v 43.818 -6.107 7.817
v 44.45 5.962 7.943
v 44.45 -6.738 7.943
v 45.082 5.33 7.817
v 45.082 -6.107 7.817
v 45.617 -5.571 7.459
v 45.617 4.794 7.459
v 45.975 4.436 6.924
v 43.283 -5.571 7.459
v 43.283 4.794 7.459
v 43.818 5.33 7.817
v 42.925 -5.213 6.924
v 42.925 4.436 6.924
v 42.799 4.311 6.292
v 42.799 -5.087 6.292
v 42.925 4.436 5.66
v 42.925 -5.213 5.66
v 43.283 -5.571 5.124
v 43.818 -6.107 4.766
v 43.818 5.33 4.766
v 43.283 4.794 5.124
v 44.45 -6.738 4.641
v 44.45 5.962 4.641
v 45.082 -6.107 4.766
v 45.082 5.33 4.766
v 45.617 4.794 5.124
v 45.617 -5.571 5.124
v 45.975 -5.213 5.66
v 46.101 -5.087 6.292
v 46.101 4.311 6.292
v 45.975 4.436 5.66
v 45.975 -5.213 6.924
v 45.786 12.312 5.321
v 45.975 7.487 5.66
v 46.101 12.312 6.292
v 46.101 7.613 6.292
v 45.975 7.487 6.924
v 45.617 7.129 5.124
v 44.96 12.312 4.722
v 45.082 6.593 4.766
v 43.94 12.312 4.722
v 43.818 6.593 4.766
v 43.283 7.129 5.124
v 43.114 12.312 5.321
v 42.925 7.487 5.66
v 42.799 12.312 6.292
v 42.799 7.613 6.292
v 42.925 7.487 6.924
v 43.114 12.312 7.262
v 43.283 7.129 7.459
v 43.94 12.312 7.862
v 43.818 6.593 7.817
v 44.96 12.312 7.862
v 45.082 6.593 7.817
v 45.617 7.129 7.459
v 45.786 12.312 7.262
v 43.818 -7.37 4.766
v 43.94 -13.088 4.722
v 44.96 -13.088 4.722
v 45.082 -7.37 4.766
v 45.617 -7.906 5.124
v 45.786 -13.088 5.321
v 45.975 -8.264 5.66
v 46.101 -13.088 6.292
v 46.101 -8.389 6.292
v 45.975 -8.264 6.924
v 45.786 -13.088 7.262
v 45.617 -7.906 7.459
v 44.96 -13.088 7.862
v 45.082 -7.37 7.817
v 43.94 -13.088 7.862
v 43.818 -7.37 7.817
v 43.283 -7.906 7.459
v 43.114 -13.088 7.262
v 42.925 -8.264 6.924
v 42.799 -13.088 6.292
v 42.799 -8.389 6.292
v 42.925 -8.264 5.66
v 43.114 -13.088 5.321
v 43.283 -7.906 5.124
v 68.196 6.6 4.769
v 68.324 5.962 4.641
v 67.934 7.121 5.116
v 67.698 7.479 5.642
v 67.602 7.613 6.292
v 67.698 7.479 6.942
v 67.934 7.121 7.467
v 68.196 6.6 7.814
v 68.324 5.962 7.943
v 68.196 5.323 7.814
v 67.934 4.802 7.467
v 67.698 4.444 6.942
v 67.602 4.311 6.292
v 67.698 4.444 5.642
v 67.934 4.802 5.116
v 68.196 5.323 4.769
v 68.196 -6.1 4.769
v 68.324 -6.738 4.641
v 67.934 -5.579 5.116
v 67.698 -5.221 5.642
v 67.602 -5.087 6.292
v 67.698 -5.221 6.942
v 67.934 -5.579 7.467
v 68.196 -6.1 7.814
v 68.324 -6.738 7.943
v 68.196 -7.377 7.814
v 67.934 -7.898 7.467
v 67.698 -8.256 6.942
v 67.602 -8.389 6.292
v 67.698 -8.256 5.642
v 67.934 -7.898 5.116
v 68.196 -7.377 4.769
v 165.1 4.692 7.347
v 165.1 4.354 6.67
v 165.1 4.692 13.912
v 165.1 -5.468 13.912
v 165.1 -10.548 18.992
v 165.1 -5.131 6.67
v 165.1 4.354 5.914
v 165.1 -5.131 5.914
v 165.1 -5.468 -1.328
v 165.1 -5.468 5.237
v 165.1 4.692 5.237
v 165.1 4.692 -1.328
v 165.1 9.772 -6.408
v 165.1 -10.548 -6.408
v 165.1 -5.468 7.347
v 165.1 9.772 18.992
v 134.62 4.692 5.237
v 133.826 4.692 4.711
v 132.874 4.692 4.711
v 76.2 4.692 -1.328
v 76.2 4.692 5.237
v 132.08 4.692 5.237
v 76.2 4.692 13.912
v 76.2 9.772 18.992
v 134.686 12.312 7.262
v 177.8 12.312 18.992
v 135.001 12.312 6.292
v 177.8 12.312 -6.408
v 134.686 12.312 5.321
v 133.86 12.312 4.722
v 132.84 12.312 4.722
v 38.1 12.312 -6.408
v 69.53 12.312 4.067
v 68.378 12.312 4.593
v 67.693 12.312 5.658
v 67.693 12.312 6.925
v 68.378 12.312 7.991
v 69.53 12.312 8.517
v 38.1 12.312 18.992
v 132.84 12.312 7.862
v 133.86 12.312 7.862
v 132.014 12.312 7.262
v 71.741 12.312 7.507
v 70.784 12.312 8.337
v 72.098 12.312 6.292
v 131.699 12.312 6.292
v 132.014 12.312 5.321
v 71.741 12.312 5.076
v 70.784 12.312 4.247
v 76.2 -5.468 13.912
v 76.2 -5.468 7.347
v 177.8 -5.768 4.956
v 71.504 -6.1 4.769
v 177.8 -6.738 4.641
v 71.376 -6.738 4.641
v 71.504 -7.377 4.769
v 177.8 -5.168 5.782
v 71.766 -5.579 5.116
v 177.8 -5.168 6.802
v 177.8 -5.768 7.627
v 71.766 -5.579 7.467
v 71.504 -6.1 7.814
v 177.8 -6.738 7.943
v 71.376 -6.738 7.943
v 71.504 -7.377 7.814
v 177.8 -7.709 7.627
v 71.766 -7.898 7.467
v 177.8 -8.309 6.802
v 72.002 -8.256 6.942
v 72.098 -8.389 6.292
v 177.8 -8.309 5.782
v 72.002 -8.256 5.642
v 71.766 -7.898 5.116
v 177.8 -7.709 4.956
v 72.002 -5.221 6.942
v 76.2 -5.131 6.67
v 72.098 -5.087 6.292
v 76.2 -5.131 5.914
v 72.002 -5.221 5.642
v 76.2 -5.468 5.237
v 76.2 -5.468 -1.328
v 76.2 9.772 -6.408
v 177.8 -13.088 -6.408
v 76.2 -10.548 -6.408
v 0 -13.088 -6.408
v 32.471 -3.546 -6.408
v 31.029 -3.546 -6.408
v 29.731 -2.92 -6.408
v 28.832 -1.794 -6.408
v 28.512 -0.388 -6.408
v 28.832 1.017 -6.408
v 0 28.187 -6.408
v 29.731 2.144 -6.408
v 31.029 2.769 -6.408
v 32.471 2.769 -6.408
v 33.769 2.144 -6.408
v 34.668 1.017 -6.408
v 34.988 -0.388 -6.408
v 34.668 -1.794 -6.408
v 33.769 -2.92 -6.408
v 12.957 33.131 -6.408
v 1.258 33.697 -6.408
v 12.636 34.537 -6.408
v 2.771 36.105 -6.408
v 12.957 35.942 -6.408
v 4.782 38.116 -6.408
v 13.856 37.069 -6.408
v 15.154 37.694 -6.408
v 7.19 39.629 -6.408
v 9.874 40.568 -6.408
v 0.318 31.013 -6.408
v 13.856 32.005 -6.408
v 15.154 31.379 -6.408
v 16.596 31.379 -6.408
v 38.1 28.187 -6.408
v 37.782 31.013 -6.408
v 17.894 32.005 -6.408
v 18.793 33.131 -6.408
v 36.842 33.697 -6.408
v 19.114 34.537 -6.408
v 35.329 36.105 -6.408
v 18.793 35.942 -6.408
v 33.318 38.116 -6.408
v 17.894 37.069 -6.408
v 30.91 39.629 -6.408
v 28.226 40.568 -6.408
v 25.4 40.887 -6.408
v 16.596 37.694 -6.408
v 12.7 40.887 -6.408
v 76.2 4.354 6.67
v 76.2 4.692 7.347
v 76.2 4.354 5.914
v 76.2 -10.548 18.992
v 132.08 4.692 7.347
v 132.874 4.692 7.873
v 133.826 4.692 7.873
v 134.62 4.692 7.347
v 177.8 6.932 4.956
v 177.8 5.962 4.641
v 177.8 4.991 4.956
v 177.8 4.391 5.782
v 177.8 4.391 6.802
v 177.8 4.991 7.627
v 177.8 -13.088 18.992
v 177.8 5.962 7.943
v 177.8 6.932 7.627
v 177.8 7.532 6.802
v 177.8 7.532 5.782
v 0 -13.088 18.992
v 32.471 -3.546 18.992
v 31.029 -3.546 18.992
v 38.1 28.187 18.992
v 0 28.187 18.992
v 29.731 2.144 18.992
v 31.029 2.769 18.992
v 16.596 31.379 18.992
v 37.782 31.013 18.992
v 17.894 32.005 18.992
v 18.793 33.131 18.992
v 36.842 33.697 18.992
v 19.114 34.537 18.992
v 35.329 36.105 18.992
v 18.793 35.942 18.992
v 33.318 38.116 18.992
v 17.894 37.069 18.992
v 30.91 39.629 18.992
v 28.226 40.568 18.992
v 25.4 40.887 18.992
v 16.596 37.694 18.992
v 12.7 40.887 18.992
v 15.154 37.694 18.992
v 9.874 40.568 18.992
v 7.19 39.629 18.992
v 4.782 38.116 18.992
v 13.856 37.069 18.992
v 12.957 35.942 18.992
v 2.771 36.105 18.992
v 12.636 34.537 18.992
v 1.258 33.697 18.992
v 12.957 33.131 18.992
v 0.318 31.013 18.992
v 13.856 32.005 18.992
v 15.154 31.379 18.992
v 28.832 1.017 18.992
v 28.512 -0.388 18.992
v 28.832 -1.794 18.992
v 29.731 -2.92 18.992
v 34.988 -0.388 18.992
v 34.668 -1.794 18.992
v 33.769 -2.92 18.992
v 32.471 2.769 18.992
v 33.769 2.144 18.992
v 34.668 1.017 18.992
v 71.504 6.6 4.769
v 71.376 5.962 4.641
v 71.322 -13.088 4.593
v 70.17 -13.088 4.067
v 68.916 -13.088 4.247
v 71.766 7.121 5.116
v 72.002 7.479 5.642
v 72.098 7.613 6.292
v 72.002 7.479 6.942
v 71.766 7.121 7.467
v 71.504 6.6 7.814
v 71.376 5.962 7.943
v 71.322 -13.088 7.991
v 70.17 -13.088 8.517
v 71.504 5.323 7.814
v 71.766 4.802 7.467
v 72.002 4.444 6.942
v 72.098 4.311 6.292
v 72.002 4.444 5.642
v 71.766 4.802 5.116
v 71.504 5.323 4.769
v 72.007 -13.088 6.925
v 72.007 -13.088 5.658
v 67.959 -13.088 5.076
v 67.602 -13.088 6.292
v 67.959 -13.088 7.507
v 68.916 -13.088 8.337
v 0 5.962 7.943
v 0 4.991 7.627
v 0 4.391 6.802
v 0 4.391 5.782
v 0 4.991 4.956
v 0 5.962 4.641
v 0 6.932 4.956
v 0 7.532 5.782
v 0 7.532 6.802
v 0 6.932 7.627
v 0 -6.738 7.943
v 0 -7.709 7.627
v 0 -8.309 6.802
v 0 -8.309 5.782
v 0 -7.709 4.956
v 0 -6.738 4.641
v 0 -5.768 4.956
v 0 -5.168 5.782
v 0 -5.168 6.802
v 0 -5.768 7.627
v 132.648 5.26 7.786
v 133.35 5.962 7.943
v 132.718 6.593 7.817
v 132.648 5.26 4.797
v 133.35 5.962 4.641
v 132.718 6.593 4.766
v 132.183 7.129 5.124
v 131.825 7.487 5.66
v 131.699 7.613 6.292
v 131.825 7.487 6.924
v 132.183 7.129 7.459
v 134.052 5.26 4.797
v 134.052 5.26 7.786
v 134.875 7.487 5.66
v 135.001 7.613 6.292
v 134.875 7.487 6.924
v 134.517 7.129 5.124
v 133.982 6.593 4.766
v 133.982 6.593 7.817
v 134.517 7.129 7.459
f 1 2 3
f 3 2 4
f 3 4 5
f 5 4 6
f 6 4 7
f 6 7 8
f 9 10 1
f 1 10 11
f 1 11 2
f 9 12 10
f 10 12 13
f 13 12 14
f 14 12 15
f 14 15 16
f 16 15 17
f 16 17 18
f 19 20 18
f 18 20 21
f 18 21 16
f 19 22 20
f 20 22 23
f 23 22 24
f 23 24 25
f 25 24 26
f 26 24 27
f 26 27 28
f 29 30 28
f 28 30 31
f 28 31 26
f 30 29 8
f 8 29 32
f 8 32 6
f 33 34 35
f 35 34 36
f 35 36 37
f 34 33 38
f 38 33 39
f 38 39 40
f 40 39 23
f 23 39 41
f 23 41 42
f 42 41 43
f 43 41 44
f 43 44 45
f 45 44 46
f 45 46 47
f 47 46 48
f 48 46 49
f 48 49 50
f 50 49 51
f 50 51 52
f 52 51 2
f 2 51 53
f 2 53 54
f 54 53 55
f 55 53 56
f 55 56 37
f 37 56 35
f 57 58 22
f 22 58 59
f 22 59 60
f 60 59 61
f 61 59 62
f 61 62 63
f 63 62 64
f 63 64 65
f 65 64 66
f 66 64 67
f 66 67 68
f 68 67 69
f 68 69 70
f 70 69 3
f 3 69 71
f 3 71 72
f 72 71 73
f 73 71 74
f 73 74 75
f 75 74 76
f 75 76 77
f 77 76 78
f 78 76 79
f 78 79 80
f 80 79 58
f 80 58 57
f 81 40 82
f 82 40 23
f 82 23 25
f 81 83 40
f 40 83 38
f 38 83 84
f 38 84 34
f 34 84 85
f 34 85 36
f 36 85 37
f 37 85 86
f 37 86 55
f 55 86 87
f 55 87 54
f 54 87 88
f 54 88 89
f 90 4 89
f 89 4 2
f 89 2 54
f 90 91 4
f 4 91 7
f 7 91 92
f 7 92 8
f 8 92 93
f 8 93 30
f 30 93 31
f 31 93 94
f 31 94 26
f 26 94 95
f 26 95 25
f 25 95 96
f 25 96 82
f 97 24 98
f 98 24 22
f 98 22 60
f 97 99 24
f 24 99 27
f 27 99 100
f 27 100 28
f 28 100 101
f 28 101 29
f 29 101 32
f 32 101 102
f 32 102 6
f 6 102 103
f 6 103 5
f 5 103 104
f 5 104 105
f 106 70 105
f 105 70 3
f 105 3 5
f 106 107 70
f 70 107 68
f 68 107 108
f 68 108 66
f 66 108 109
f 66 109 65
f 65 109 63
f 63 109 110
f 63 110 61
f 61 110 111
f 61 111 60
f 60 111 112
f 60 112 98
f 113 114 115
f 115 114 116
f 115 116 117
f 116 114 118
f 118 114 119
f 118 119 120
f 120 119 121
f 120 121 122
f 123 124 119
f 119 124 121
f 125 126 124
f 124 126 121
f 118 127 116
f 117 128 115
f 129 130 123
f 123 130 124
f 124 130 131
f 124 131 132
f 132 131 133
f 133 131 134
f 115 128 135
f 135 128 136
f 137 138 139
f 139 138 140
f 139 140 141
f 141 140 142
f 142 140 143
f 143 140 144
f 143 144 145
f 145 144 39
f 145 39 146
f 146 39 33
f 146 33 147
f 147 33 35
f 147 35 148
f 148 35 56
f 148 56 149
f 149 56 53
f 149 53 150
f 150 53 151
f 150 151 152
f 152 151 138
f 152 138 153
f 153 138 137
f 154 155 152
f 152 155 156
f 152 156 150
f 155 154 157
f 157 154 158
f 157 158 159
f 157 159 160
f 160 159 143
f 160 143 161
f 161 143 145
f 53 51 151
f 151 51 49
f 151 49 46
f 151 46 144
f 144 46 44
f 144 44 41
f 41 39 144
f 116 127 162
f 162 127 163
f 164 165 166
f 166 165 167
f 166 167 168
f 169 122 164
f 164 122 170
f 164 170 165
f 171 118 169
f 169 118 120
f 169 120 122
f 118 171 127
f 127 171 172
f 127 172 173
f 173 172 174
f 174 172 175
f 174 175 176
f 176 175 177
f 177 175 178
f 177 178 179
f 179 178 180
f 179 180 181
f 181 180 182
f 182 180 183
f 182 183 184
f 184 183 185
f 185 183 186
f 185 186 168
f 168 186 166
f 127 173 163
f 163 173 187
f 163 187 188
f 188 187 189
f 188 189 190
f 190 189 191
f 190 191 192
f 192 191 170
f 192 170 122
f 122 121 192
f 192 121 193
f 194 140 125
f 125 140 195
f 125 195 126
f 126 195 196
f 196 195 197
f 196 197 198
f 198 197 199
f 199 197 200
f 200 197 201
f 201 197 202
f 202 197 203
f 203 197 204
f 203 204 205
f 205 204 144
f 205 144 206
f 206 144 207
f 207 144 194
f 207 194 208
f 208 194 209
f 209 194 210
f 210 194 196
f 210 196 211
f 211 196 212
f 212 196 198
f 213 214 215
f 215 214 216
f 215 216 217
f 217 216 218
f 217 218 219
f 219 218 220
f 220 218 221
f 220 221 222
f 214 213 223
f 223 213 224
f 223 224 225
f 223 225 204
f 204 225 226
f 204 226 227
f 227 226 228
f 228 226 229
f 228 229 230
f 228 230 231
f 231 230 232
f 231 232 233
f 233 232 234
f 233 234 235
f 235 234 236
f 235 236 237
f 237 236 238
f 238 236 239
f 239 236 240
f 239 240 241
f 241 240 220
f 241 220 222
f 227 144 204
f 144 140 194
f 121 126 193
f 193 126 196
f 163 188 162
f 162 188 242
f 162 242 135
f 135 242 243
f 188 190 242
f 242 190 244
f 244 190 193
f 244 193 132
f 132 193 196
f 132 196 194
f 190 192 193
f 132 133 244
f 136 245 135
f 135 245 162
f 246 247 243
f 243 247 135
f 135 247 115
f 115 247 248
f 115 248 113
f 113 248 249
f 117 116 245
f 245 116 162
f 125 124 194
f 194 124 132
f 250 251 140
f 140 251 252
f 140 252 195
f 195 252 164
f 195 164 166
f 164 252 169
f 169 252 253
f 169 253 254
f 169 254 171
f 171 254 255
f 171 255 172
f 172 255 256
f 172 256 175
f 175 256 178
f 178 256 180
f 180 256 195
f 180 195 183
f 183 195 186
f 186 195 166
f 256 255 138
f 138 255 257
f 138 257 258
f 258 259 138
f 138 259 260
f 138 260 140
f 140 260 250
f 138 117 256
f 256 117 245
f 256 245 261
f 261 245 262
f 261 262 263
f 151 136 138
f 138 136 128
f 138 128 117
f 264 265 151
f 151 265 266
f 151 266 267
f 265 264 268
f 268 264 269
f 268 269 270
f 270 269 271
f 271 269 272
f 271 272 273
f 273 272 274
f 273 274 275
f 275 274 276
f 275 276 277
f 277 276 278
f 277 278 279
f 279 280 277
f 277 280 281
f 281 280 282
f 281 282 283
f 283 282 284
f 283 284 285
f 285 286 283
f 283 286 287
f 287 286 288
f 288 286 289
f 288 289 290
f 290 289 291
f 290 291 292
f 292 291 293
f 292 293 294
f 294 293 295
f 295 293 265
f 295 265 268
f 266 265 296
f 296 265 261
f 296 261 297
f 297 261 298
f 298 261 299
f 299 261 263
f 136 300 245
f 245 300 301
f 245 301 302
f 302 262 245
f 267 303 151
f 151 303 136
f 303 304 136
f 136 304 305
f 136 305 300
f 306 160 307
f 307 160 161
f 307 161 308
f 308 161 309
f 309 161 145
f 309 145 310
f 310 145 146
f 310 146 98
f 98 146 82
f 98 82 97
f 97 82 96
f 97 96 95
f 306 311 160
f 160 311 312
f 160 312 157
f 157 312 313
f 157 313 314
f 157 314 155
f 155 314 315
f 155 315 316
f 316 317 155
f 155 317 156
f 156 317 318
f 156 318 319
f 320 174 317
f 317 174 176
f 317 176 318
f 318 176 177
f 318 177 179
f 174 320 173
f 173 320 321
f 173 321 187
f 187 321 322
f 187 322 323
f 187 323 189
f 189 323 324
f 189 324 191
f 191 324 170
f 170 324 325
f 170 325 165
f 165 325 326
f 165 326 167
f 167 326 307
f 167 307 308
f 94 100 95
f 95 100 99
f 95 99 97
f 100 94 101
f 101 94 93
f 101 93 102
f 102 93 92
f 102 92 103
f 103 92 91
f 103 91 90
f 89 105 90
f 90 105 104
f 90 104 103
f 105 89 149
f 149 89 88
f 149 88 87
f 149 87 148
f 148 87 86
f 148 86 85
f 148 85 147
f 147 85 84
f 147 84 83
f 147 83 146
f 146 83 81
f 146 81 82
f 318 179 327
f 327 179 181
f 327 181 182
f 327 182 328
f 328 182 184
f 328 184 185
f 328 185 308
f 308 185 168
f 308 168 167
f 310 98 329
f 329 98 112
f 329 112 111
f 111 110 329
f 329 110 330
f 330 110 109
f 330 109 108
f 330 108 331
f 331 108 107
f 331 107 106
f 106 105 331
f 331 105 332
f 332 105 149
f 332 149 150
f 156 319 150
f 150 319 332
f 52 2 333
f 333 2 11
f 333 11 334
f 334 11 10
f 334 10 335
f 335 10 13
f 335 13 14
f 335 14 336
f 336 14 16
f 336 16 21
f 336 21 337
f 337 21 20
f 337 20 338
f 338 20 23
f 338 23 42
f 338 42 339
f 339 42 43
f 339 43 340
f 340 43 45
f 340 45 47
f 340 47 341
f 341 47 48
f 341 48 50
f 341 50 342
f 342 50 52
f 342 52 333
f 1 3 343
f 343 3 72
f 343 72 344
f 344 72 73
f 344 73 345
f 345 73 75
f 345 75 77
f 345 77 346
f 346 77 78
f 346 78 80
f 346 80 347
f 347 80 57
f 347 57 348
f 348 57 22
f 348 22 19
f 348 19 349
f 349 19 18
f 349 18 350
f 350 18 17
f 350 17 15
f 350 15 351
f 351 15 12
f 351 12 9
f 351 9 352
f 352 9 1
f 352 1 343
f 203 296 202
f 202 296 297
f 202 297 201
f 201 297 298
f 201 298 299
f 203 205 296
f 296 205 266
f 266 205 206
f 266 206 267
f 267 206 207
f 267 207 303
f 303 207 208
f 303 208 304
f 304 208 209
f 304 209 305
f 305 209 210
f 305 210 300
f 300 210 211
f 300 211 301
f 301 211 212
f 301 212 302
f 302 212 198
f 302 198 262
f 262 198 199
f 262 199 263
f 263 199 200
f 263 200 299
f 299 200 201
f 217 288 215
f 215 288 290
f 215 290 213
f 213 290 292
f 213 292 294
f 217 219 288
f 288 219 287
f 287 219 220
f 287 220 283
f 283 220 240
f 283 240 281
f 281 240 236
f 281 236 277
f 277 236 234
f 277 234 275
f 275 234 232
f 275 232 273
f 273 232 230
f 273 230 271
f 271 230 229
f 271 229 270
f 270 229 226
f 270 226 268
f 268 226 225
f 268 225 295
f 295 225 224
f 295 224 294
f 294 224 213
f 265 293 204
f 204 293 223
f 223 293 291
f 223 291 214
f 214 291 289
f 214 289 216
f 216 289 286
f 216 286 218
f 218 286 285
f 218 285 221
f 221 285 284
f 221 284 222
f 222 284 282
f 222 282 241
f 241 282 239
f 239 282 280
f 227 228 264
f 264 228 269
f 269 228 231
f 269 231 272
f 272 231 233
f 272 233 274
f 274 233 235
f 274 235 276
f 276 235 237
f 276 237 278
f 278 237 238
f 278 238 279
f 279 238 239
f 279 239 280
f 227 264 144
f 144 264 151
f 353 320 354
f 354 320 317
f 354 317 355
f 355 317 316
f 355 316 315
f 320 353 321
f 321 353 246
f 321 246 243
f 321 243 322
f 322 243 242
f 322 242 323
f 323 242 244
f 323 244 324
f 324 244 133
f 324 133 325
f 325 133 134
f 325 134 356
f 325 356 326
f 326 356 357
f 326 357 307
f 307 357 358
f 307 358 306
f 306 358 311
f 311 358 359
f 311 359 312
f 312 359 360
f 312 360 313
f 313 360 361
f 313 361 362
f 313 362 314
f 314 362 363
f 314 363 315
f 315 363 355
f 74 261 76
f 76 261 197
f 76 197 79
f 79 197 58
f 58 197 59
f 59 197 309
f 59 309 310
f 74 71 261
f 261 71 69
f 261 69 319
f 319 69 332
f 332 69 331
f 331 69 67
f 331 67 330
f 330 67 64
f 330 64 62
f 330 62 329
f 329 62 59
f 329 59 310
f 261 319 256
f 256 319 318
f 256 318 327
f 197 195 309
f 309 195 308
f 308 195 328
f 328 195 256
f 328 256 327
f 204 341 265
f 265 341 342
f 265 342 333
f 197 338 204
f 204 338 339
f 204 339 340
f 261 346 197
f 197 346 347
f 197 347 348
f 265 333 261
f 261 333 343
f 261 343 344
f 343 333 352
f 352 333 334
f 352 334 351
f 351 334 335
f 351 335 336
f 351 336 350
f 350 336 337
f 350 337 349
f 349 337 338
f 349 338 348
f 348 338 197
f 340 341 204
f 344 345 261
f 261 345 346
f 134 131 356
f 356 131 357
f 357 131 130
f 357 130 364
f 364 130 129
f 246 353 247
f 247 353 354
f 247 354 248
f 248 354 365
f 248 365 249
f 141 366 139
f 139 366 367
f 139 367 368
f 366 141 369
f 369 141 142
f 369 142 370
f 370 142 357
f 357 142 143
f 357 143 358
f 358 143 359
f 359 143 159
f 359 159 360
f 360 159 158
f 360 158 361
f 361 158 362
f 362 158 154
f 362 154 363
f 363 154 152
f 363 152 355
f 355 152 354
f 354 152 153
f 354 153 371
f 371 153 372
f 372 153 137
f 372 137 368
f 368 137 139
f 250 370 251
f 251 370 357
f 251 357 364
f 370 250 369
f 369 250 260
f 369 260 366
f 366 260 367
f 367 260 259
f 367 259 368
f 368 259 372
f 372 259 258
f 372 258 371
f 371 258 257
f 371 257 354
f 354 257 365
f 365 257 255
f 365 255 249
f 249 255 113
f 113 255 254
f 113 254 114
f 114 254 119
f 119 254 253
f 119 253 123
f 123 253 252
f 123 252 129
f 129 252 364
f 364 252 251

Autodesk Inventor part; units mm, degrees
ref_plane "YZ Plane" through (0, 0, 0) normal (1, 0, 0) x (0, 1, 0)
ref_plane "XZ Plane" through (0, 0, 0) normal (0, 1, 0) x (-1, 0, 0)
ref_plane "XY Plane" through (0, 0, 0) normal (0, 0, 1) x (1, 0, 0)
sketch "Sketch1" plane through (0, 0, 0) normal (1, 0, 0) x (0, 1, 0)
  line L0 (12.3116, 18.9917) -> (-13.0884, 18.9917)
  line L1 (-13.0884, 18.9917) -> (-13.0884, -6.4083)
  line L2 (-13.0884, -6.4083) -> (12.3116, -6.4083)
  line L3 (12.3116, -6.4083) -> (12.3116, 18.9917)
  point P0 (0, 0)
  dimension "d0" = 25.4
  dimension "d1" = 25.4
extrude "Extrusion1" add sketch "Sketch1" along normal blind 177.8
sketch "Sketch5" plane through (177.8, 0, 0) normal (1, 0, 0) x (0, 0, -1)
  line L0 (-18.9917, -13.0884) -> (6.4083, -13.0884) projected
  line L1 (-18.9917, 12.3116) -> (-18.9917, -13.0884) projected
  point P0 (0, 0)
  point P1 (-6.2917, 5.9616)
  point P2 (-6.2917, -6.7384)
  dimension "d31" = 6.35
  dimension "d32" = 19.05
  dimension "d33" = 12.7
  dimension "d34" = 12.7
hole "Hole4" at (177.8, 5.9616, 6.2917) at (177.8, -6.7384, 6.2917) direction (-1, 0, 0) diameter 3.302 end through all thread size "8-32 UNC" class "2B" standard "ANSI Unified Screw Threads"
sketch "Sketch8" plane through (0, 12.3116, 18.9917) normal (0, 1, 0) x (1, 0, 0)
  line L0 (0, 25.4) -> (38.1, 25.4)
  line L1 (38.1, 25.4) -> (38.1, 0)
  line L2 (38.1, 0) -> (0, 0)
  line L3 (0, 0) -> (0, 25.4)
  line L4 (0, 25.4) -> (0, 0) projected
  line L5 (0, 25.4) -> (177.8, 25.4) projected
  line L6 (0, 0) -> (177.8, 0) projected
  point P0 (0, 18.9917)
  dimension "d60" = 0
  dimension "d61" = 38.1
  dimension "d62" = 0
  dimension "d63" = 0
extrude "Extrusion2" add sketch "Sketch8" along normal blind 28.575
fillet "Fillet1" radius 12.7 2 edges at (38.1, 40.8866, 6.2917) (0, 40.8866, 6.2917)
sketch "Sketch9" plane through (0, -13.0884, 18.9917) normal (0, 0, 1) x (1, 0, 0)
  line L0 (0, 41.275) -> (0, 0) projected
  line L1 (12.7, 53.975) -> (25.4, 53.975) projected
  line L2 (38.1, 25.4) -> (177.8, 25.4) projected
  point P0 (0, 13.0884)
  point P1 (15.875, 47.625)
  dimension "d67" = 15.875
  dimension "d137" = 22.225
hole "Hole7" at (15.875, 34.5366, 18.9917) direction (0, 0, -1) diameter 6.477 end through all
sketch "Sketch10" plane through (0, -13.0884, 18.9917) normal (0, 0, 1) x (1, 0, 0)
  line L0 (0, 0) -> (177.8, 0) projected
  line L1 (0, 41.275) -> (0, 0) projected
  point P0 (0, 13.0884)
  point P1 (31.75, 12.7)
  dimension "d76" = 12.7
  dimension "d77" = 31.75
hole "Hole8" at (31.75, -0.3884, 18.9917) direction (0, 0, -1) diameter 6.477 end through all
sketch "Sketch11" plane through (177.8, 12.3116, 18.9917) normal (0, 1, 0) x (1, 0, 0)
  line L0 (-177.8, 25.4) -> (-177.8, 0) projected
  line L1 (-139.7, 0) -> (0, 0) projected
  point P0 (-177.8, 18.9917)
  point P1 (-107.95, 12.7)
  dimension "d85" = 69.85
  dimension "d86" = 12.7
hole "Hole9" at (69.85, 12.3116, 6.2917) direction (0, -1, 0) diameter 4.4958 end through all clearance for "Flat Head Machine Screw (82)" size "#8" standard "Ansi Unified Screw Threads"
sketch "Sketch12" plane through (177.8, 0, 0) normal (1, 0, 0) x (0, 0, -1)
  line L0 (-18.9917, 9.7716) -> (-18.9917, -10.5484)
  line L1 (-18.9917, -10.5484) -> (-13.9117, -5.4684)
  line L2 (-13.9117, -5.4684) -> (1.3283, -5.4684)
  line L3 (1.3283, -5.4684) -> (6.4083, -10.5484)
  line L4 (6.4083, -10.5484) -> (6.4083, 9.7716)
  line L5 (6.4083, 9.7716) -> (1.3283, 4.6916)
  line L6 (1.3283, 4.6916) -> (-13.9117, 4.6916)
  line L7 (-13.9117, 4.6916) -> (-18.9917, 9.7716)
  line L8 (-18.9917, 12.3116) -> (-18.9917, -13.0884) projected
  line L9 (-18.9917, -13.0884) -> (6.4083, -13.0884) projected
  dimension "d103" = 20.32
  dimension "d104" = 5.08
  dimension "d105" = 5.08
  dimension "d106" = 5.08
  dimension "d107" = 25.4
  dimension "d108" = 5.08
  dimension "d109" = 0
  dimension "d110" = 0
  dimension "d111" = 0
  dimension "d112" = 2.54
extrude "Extrusion3" cut sketch "Sketch12" against normal blind 101.6
sketch "Sketch13" plane through (177.8, 0, 0) normal (1, 0, 0) x (0, 0, -1)
  line L0 (-18.9917, 12.3116) -> (6.4083, 12.3116)
  line L1 (6.4083, 12.3116) -> (6.4083, -13.0884)
  line L2 (6.4083, -13.0884) -> (-18.9917, -13.0884)
  line L3 (-18.9917, -13.0884) -> (-18.9917, 12.3116)
  line L4 (6.4083, 9.7716) -> (6.4083, -10.5484) projected
  line L5 (-18.9917, -13.0884) -> (6.4083, -13.0884) projected
  point P0 (0, 0)
  dimension "d115" = 25.4
  dimension "d116" = 25.4
  dimension "d117" = 0
  dimension "d118" = 0
extrude "Extrusion4" add sketch "Sketch13" against normal blind 12.7
sketch "Sketch14" plane through (177.8, 0, 0) normal (1, 0, 0) x (0, 0, -1)
  arc A0 (-5.2368, 4.6916) -> (-7.3467, 4.6916) centre (-6.2917, 5.9616) ccw projected
  arc A1 (-7.3467, -5.4684) -> (-5.2368, -5.4684) centre (-6.2917, -6.7384) ccw projected
  point P0 (0, 0)
hole "Hole10" at (177.8, 5.9616, 6.2917) at (177.8, -6.7384, 6.2917) direction (-1, 0, 0) diameter 3.302 end through all thread size "8-32 UNC" class "2B" standard "ANSI Unified Screw Threads"
sketch "Sketch15" plane through (177.8, 12.3116, 18.9917) normal (0, 1, 0) x (1, 0, 0)
  line L0 (-139.7, 25.4) -> (0, 25.4) projected
  line L1 (-139.7, 0) -> (-139.7, 25.4) projected
  point P0 (-177.8, 18.9917)
  point P1 (-133.35, 12.7)
  dimension "d128" = 12.7
  dimension "d129" = 6.35
hole "Hole11" at (44.45, 12.3116, 6.2917) direction (0, -1, 0) diameter 3.302 end through all thread size "8-32 UNC" class "2B" standard "ANSI Unified Screw Threads"
sketch "Sketch16" plane through (177.8, 12.3116, 18.9917) normal (0, 1, 0) x (1, 0, 0)
  line L0 (-12.7, 20.32) -> (-101.6, 20.32) projected
  circle A0 centre (-107.95, 12.7) radius 2.2479 projected
  line L1 (-139.7, 0) -> (0, 0) projected
  point P0 (-177.8, 18.9917)
  point P1 (-44.45, 12.7)
  dimension "d138" = 63.5
  dimension "d139" = 12.7
hole "Hole12" at (133.35, 12.3116, 6.2917) direction (0, -1, 0) diameter 3.302 depth 12.2936 tip angle 118.188 thread size "8-32 UNC" class "2B" standard "ANSI Unified Screw Threads"
properties part number "BackTopBeams"
